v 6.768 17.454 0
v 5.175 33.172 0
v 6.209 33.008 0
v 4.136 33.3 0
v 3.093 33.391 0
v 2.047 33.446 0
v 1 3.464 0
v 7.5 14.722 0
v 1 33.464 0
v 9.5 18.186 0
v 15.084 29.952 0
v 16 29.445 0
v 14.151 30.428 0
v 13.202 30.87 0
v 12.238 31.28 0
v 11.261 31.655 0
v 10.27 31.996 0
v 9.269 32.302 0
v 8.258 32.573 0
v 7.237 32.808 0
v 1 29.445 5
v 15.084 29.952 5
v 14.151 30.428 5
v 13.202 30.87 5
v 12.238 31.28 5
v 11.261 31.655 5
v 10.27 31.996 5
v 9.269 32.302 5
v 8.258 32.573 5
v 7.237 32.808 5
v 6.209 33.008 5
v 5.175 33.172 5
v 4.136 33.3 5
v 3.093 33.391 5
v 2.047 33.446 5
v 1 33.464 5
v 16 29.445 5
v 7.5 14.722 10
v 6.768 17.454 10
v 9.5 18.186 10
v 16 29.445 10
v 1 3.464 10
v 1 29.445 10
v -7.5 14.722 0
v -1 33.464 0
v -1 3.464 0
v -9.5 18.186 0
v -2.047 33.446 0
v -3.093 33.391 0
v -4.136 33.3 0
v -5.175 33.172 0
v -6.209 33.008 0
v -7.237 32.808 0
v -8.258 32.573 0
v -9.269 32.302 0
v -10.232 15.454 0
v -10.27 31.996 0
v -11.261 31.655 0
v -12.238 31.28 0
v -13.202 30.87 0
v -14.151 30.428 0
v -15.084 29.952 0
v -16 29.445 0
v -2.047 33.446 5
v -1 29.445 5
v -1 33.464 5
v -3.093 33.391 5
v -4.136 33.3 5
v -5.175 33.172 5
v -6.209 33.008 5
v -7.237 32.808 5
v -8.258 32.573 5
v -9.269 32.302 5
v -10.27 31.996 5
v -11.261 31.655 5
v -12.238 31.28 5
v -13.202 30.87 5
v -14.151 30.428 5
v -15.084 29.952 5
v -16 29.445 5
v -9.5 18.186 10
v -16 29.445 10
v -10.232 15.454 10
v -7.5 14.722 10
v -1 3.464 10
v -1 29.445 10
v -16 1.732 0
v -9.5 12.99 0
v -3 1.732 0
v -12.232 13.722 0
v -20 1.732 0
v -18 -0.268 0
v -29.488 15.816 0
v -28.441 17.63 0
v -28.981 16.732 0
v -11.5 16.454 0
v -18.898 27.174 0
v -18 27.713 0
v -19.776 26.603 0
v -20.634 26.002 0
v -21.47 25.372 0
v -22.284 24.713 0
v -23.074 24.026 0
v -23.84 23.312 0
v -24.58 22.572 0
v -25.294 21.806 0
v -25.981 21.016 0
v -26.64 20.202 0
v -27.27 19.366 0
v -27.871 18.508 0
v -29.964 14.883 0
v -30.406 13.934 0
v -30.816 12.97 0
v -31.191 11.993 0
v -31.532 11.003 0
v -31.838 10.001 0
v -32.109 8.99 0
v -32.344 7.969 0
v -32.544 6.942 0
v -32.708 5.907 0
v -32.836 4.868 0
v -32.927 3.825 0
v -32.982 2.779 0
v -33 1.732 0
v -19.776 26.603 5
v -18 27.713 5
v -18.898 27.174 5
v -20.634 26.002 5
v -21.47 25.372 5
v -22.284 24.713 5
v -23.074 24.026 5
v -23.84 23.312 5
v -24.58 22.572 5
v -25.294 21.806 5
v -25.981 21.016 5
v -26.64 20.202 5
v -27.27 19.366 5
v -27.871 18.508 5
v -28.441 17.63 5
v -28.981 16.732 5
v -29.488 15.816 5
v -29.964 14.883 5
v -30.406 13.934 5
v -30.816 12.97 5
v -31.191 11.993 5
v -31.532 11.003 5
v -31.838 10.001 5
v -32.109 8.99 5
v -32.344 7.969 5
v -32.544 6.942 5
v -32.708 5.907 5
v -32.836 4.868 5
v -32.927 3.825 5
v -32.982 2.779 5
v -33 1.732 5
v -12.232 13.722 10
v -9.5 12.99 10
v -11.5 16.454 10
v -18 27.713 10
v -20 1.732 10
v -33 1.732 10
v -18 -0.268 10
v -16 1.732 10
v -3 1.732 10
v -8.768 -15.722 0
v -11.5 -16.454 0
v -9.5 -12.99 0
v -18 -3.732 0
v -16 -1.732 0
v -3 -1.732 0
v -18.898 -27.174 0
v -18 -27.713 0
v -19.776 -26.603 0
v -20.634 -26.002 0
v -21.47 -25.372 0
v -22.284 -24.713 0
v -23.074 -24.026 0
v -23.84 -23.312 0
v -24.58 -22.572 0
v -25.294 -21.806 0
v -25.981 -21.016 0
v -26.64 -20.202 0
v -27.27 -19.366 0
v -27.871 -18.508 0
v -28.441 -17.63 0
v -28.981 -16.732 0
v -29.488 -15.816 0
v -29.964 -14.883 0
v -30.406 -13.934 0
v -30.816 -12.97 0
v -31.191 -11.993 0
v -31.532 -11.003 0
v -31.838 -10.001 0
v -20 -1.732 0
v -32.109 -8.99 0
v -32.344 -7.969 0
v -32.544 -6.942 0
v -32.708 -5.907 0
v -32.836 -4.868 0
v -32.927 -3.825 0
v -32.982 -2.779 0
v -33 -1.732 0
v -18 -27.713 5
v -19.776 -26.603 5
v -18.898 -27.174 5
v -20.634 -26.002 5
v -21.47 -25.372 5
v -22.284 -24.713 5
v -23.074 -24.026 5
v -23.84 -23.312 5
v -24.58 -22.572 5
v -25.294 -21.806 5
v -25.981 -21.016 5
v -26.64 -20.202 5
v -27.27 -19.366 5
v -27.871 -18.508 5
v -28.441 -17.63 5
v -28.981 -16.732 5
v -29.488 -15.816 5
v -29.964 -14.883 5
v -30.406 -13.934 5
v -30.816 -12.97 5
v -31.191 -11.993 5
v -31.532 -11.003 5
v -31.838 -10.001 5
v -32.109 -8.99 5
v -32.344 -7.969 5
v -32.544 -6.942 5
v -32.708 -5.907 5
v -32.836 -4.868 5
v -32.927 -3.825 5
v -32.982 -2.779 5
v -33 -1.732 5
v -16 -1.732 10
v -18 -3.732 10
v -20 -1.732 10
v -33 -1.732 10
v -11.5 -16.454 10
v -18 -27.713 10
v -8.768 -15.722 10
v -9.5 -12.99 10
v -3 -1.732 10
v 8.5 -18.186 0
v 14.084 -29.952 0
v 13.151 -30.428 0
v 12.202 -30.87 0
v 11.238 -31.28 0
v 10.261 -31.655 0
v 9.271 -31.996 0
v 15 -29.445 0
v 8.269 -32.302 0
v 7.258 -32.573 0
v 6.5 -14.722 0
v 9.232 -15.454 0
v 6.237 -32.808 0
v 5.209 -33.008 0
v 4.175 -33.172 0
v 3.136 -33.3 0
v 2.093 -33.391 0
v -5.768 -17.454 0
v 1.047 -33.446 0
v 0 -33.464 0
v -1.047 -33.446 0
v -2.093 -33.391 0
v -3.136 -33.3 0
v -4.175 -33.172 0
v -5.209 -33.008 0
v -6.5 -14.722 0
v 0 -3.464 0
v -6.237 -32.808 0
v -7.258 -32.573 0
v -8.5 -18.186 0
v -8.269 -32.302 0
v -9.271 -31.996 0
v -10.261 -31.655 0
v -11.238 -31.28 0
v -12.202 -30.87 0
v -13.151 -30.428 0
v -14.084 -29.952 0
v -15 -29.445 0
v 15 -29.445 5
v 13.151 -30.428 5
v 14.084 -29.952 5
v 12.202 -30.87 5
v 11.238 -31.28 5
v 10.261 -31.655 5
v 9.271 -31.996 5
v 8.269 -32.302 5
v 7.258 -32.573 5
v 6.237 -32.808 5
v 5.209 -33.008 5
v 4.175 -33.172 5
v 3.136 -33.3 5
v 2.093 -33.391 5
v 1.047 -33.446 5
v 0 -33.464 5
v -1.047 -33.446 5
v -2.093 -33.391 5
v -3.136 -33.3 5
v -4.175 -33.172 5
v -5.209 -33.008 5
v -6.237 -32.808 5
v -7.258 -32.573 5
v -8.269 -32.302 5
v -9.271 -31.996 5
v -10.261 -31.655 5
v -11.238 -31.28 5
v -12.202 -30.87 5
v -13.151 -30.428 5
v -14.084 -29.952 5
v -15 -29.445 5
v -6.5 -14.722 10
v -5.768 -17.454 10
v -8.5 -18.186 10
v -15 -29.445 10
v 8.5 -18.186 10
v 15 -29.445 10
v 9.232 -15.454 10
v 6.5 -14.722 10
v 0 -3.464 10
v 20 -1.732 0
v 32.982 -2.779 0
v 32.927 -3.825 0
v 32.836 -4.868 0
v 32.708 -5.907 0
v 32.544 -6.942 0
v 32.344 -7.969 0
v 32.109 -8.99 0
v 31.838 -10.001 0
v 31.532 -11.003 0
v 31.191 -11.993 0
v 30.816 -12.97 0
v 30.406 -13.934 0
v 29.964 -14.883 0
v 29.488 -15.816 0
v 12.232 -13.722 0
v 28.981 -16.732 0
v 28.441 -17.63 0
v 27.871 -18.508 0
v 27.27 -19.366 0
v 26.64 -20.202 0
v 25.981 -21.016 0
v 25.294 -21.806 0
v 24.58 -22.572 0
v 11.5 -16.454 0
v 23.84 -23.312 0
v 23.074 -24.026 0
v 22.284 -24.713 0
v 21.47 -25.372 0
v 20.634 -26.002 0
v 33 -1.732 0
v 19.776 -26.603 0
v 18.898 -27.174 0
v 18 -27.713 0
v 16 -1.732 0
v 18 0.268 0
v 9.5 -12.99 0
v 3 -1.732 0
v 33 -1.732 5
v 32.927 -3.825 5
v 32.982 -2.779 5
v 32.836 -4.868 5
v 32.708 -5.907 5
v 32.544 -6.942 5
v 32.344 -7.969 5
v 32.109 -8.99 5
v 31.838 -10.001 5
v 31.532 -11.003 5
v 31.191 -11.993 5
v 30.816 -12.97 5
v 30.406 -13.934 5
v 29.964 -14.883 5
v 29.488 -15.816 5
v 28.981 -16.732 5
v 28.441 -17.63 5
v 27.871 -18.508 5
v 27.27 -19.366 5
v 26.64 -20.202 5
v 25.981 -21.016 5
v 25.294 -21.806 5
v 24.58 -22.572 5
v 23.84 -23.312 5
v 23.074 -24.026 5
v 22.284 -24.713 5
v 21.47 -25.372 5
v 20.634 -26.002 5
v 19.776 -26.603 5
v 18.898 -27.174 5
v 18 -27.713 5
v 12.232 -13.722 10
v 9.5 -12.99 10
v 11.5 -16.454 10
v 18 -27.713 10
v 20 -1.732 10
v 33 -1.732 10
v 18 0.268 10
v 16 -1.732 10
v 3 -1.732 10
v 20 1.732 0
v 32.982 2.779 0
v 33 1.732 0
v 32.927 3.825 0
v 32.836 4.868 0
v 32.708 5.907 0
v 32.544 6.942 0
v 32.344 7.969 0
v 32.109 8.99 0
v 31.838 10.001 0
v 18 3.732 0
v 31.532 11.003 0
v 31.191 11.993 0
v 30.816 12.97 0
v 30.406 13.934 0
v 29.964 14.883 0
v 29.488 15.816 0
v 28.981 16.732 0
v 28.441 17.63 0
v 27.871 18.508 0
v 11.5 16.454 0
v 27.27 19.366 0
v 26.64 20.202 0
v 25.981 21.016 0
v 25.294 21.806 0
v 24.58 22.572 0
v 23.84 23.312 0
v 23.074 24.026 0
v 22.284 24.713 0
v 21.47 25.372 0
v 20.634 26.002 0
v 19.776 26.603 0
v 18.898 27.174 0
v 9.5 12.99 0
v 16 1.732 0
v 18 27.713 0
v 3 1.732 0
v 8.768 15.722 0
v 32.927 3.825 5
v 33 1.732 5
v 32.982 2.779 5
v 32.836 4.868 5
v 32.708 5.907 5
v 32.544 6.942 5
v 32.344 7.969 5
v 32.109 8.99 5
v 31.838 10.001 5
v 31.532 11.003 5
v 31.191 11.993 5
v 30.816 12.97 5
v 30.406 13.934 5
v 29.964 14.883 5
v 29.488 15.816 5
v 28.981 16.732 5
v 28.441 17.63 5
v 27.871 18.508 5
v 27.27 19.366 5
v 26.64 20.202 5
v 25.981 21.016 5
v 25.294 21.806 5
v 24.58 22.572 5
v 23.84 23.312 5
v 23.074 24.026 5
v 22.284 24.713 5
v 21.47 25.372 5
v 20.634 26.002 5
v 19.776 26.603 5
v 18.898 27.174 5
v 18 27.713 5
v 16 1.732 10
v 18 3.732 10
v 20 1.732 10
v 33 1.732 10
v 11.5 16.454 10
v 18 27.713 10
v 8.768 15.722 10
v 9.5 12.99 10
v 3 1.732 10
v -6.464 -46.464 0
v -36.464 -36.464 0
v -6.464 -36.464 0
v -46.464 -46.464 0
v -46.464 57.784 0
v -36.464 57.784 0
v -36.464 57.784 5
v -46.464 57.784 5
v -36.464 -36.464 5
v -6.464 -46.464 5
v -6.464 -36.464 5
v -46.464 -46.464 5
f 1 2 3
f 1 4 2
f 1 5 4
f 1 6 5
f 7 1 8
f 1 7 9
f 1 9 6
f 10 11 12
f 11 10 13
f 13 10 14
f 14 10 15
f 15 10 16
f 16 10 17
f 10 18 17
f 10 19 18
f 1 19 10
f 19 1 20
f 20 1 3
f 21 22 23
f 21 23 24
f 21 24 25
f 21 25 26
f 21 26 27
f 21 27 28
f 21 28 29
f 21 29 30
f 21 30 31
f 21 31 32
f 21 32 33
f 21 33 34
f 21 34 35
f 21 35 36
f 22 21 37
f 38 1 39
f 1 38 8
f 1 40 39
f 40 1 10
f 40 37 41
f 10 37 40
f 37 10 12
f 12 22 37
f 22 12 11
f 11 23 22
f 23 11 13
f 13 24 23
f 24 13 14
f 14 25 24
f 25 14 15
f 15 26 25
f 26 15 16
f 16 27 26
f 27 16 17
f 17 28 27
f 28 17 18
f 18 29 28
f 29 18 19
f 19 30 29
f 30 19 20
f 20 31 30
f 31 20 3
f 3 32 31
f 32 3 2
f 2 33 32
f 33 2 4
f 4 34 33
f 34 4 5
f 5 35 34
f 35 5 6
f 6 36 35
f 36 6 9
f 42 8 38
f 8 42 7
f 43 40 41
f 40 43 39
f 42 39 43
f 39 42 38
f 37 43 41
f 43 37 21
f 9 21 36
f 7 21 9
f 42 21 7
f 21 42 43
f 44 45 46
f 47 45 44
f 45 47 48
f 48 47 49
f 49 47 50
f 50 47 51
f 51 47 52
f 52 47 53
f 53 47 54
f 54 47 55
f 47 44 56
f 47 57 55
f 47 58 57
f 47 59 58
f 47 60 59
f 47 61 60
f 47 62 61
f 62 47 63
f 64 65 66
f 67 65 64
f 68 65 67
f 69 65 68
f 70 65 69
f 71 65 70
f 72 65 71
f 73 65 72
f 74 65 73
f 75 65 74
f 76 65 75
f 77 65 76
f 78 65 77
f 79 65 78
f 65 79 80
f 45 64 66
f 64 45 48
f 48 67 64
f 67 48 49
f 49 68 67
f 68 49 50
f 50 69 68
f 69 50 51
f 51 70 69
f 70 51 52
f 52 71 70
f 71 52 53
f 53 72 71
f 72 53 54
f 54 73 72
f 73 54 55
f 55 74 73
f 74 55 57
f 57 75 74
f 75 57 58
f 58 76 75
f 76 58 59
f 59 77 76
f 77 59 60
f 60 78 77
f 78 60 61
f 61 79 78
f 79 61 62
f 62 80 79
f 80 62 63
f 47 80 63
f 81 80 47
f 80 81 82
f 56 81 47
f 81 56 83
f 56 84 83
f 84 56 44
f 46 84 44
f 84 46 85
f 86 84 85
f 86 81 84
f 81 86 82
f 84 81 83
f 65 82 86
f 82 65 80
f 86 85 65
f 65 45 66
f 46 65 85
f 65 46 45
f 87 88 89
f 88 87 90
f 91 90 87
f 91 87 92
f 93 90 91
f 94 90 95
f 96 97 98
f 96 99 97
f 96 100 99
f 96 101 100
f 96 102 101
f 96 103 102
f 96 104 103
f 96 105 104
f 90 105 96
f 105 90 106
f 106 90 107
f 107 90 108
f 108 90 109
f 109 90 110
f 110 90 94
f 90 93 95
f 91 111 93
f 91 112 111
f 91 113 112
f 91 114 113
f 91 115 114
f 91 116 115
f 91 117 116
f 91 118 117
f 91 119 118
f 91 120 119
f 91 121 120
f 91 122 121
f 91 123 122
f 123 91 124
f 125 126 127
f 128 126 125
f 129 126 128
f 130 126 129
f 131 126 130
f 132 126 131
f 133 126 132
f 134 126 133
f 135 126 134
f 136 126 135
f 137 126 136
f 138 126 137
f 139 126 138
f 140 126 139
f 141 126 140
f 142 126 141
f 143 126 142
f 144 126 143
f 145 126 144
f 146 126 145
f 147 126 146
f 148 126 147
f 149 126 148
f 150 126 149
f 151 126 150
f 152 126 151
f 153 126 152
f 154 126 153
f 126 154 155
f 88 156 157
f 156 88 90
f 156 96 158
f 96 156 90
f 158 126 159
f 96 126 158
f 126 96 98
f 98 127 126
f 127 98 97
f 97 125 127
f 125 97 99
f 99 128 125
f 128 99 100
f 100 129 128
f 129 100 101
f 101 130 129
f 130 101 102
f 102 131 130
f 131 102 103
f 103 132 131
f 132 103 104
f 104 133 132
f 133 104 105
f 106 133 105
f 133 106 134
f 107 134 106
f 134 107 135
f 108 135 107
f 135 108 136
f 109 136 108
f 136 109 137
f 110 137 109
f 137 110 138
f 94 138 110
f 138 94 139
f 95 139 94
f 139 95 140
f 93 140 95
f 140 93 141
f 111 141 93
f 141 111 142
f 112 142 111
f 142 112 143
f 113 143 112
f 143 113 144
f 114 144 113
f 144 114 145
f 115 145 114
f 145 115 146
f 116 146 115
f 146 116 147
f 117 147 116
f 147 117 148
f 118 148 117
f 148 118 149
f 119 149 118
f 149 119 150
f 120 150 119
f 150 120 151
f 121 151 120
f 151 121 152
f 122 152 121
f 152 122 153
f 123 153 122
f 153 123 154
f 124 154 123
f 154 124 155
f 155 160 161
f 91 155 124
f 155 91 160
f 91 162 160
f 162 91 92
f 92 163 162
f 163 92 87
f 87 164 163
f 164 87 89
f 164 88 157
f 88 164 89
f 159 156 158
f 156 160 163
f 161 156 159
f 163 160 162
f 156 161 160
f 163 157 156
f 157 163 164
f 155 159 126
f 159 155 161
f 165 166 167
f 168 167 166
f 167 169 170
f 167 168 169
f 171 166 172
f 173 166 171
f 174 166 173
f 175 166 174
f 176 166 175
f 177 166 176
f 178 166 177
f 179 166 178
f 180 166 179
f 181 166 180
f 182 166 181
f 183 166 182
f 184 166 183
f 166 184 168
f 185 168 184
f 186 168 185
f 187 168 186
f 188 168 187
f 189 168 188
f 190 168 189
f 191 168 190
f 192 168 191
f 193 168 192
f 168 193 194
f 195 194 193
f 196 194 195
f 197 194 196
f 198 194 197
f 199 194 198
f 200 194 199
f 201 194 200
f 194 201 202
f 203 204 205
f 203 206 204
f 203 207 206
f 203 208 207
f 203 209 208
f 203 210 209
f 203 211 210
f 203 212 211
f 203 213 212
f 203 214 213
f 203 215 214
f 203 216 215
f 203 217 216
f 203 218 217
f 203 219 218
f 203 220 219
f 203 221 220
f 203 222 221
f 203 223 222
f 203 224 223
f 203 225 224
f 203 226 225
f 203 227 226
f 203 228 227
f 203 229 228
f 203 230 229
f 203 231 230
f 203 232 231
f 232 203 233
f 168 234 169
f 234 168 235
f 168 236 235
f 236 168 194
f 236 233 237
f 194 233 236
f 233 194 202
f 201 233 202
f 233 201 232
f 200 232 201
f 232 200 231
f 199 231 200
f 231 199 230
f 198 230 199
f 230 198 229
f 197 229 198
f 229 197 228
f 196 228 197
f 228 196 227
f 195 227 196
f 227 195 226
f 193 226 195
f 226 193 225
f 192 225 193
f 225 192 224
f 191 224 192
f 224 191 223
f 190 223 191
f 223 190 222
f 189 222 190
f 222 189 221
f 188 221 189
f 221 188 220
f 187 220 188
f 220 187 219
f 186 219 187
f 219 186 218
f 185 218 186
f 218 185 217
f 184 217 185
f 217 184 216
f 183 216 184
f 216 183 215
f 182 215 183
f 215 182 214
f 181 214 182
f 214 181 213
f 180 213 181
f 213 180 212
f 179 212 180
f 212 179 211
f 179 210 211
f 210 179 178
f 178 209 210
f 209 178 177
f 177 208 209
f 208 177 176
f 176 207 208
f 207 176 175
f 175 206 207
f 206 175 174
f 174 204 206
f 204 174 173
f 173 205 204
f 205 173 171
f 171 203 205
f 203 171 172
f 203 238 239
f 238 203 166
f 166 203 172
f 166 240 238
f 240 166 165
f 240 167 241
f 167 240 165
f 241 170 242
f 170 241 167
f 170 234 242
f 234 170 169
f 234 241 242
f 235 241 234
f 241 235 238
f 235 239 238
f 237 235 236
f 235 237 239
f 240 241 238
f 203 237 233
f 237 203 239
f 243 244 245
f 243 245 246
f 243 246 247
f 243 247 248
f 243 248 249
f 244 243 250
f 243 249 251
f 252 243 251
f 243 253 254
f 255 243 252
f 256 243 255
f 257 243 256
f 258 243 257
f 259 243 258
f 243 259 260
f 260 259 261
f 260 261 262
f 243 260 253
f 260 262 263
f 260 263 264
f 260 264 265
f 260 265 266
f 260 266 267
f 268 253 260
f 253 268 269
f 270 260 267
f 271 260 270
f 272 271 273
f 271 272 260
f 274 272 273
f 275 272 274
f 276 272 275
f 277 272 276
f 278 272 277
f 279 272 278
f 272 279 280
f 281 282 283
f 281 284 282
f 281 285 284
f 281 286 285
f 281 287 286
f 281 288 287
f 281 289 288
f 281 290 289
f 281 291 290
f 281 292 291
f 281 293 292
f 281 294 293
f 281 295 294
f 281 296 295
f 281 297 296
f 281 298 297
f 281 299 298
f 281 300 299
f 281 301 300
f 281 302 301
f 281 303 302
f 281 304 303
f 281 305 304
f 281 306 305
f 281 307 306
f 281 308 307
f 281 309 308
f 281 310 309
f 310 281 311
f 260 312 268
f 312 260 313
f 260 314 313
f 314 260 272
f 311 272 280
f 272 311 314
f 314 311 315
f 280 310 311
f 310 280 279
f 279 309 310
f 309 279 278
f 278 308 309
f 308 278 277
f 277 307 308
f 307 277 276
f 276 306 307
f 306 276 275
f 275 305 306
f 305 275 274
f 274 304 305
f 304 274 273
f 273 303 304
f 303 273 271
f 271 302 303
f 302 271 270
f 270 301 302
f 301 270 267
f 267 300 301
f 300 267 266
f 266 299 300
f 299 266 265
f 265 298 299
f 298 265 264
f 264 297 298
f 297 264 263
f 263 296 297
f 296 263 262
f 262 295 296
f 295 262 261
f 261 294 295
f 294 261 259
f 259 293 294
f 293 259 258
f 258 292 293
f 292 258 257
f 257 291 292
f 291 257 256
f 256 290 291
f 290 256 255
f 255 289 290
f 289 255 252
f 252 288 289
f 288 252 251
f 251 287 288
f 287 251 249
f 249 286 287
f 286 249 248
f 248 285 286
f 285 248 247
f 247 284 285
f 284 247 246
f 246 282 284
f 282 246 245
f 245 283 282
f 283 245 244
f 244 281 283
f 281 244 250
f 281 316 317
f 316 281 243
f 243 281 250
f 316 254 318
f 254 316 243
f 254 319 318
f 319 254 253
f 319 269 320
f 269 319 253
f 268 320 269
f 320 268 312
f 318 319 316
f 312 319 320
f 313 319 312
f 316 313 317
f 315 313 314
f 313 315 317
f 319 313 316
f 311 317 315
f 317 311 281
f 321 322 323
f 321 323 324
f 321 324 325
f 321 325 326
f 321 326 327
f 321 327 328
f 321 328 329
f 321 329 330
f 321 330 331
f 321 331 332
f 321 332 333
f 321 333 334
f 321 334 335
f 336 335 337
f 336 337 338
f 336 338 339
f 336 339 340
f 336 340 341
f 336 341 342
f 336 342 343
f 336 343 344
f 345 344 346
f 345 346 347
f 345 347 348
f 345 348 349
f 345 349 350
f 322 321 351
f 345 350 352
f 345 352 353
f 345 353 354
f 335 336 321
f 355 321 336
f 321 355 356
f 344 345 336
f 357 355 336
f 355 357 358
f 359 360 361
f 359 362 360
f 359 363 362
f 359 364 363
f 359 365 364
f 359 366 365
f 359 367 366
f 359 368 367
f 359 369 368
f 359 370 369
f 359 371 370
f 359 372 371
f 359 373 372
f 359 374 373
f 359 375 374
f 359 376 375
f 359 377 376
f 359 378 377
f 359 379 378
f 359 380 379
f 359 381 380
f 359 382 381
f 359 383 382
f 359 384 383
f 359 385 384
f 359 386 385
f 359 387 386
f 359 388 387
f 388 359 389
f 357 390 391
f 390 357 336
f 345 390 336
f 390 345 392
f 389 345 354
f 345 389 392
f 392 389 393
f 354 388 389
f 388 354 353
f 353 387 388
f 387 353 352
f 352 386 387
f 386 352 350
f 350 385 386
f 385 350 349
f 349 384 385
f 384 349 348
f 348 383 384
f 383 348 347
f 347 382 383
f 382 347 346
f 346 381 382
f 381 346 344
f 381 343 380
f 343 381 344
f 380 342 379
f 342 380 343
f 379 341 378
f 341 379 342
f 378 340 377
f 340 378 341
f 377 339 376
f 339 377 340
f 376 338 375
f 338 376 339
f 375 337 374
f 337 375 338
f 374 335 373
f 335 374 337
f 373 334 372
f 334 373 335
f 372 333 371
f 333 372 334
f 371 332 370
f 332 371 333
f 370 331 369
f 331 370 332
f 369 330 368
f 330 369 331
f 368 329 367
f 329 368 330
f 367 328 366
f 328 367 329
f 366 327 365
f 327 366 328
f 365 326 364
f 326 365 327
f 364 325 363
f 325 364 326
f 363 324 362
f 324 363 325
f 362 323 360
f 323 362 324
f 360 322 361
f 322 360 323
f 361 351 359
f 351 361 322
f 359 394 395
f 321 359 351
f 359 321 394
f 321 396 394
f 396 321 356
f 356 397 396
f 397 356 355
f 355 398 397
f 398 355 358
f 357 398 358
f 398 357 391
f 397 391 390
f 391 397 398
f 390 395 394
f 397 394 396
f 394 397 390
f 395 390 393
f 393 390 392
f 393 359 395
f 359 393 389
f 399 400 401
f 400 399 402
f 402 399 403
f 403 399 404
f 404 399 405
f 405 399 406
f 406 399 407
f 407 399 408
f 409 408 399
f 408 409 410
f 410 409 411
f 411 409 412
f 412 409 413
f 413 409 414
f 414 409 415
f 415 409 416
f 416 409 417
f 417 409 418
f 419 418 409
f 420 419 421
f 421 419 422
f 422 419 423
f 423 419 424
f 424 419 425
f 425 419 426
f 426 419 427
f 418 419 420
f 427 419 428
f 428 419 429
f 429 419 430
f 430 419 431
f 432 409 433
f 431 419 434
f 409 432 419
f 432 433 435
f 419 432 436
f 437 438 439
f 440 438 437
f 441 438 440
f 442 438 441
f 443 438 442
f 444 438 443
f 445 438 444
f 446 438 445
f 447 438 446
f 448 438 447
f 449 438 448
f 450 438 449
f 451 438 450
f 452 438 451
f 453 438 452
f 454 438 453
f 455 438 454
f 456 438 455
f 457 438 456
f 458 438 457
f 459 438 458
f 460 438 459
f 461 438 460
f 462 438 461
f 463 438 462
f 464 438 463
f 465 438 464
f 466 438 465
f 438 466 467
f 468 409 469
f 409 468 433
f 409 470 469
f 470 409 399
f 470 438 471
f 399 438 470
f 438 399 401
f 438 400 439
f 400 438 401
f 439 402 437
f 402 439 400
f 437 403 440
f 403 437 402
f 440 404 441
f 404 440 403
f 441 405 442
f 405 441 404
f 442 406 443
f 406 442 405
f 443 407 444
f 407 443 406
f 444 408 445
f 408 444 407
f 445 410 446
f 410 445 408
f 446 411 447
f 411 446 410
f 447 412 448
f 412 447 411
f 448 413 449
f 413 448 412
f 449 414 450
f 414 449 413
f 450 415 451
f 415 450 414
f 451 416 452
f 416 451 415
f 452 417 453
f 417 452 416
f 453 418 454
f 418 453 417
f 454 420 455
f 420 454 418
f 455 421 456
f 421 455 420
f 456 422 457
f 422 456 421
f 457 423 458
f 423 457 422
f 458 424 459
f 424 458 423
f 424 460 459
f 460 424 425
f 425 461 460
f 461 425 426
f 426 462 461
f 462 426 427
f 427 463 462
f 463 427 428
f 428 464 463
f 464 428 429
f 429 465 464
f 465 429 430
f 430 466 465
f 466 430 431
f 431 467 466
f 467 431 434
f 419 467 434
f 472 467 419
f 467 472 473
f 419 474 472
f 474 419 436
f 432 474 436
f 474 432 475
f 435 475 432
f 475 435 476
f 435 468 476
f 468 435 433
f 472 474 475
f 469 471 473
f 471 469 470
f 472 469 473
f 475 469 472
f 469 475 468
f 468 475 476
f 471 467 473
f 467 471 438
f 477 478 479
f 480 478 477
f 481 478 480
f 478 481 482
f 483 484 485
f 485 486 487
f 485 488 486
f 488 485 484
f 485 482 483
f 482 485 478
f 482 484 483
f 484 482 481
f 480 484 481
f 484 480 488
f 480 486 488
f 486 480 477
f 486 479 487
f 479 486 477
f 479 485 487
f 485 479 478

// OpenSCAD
// file areaWedges.scad
//Prints out wedges making up a circle, and a rectangular enclosure
// (c) 2020 Rich Cameron, CC-BY
// measurements in mm

r = 30;
sides = 6;
thick = 10;
notch = 2;
spacing = 3;

frame = 10;

$fs = .2;
$fa = 2;

for(a = [0:360 / sides:359]) rotate(a) translate([0, spacing / sin(360 / sides), 0]) if(a == 0) {
	for(i = [1, -1]) translate([i * spacing / 3, 0, 0]) if(thick) {
		intersection() {
			translate([i * r, r, 0]) cube(r * 2, center = true);
			union() {
				linear_extrude(thick / 2) wedge(true);
				linear_extrude(thick) wedge();
			}
		}
	} else intersection() {
		translate([i * r, r, 0]) square(r * 2, center = true);
		wedge(true);
	}
} else {
	if(thick) {
		linear_extrude(thick / 2) wedge(true);
		linear_extrude(thick) wedge();
	} else wedge(true);
}

if(frame) translate([1, 1, 0] * (-r - frame - spacing * (1 + 1 / sin(360 / sides)))) {
	if(thick) linear_extrude(thick / 2) frame();
	else frame();
}
	
module frame() difference() {
	square([r + frame, r * PI + frame]);
	translate([frame, frame, 0]) square([r + frame, r * PI + frame]);
}

module wedge(round = false) {
	difference() {
		intersection() {
			if(round) circle(r);
			else rotate(90 - 180 / sides) circle(r, $fn = sides);
			intersection_for(a = [-1, 1]) rotate(a * (90 - 180 / sides)) translate([-r, 0, 0]) square(r * 2);
		}
		rotate(-180 / sides) translate([0, r / 2, 0]) circle(notch, $fn = 4);
	}
	rotate(180 / sides) translate([0, r / 2, 0]) circle(notch, $fn = 4);
}
